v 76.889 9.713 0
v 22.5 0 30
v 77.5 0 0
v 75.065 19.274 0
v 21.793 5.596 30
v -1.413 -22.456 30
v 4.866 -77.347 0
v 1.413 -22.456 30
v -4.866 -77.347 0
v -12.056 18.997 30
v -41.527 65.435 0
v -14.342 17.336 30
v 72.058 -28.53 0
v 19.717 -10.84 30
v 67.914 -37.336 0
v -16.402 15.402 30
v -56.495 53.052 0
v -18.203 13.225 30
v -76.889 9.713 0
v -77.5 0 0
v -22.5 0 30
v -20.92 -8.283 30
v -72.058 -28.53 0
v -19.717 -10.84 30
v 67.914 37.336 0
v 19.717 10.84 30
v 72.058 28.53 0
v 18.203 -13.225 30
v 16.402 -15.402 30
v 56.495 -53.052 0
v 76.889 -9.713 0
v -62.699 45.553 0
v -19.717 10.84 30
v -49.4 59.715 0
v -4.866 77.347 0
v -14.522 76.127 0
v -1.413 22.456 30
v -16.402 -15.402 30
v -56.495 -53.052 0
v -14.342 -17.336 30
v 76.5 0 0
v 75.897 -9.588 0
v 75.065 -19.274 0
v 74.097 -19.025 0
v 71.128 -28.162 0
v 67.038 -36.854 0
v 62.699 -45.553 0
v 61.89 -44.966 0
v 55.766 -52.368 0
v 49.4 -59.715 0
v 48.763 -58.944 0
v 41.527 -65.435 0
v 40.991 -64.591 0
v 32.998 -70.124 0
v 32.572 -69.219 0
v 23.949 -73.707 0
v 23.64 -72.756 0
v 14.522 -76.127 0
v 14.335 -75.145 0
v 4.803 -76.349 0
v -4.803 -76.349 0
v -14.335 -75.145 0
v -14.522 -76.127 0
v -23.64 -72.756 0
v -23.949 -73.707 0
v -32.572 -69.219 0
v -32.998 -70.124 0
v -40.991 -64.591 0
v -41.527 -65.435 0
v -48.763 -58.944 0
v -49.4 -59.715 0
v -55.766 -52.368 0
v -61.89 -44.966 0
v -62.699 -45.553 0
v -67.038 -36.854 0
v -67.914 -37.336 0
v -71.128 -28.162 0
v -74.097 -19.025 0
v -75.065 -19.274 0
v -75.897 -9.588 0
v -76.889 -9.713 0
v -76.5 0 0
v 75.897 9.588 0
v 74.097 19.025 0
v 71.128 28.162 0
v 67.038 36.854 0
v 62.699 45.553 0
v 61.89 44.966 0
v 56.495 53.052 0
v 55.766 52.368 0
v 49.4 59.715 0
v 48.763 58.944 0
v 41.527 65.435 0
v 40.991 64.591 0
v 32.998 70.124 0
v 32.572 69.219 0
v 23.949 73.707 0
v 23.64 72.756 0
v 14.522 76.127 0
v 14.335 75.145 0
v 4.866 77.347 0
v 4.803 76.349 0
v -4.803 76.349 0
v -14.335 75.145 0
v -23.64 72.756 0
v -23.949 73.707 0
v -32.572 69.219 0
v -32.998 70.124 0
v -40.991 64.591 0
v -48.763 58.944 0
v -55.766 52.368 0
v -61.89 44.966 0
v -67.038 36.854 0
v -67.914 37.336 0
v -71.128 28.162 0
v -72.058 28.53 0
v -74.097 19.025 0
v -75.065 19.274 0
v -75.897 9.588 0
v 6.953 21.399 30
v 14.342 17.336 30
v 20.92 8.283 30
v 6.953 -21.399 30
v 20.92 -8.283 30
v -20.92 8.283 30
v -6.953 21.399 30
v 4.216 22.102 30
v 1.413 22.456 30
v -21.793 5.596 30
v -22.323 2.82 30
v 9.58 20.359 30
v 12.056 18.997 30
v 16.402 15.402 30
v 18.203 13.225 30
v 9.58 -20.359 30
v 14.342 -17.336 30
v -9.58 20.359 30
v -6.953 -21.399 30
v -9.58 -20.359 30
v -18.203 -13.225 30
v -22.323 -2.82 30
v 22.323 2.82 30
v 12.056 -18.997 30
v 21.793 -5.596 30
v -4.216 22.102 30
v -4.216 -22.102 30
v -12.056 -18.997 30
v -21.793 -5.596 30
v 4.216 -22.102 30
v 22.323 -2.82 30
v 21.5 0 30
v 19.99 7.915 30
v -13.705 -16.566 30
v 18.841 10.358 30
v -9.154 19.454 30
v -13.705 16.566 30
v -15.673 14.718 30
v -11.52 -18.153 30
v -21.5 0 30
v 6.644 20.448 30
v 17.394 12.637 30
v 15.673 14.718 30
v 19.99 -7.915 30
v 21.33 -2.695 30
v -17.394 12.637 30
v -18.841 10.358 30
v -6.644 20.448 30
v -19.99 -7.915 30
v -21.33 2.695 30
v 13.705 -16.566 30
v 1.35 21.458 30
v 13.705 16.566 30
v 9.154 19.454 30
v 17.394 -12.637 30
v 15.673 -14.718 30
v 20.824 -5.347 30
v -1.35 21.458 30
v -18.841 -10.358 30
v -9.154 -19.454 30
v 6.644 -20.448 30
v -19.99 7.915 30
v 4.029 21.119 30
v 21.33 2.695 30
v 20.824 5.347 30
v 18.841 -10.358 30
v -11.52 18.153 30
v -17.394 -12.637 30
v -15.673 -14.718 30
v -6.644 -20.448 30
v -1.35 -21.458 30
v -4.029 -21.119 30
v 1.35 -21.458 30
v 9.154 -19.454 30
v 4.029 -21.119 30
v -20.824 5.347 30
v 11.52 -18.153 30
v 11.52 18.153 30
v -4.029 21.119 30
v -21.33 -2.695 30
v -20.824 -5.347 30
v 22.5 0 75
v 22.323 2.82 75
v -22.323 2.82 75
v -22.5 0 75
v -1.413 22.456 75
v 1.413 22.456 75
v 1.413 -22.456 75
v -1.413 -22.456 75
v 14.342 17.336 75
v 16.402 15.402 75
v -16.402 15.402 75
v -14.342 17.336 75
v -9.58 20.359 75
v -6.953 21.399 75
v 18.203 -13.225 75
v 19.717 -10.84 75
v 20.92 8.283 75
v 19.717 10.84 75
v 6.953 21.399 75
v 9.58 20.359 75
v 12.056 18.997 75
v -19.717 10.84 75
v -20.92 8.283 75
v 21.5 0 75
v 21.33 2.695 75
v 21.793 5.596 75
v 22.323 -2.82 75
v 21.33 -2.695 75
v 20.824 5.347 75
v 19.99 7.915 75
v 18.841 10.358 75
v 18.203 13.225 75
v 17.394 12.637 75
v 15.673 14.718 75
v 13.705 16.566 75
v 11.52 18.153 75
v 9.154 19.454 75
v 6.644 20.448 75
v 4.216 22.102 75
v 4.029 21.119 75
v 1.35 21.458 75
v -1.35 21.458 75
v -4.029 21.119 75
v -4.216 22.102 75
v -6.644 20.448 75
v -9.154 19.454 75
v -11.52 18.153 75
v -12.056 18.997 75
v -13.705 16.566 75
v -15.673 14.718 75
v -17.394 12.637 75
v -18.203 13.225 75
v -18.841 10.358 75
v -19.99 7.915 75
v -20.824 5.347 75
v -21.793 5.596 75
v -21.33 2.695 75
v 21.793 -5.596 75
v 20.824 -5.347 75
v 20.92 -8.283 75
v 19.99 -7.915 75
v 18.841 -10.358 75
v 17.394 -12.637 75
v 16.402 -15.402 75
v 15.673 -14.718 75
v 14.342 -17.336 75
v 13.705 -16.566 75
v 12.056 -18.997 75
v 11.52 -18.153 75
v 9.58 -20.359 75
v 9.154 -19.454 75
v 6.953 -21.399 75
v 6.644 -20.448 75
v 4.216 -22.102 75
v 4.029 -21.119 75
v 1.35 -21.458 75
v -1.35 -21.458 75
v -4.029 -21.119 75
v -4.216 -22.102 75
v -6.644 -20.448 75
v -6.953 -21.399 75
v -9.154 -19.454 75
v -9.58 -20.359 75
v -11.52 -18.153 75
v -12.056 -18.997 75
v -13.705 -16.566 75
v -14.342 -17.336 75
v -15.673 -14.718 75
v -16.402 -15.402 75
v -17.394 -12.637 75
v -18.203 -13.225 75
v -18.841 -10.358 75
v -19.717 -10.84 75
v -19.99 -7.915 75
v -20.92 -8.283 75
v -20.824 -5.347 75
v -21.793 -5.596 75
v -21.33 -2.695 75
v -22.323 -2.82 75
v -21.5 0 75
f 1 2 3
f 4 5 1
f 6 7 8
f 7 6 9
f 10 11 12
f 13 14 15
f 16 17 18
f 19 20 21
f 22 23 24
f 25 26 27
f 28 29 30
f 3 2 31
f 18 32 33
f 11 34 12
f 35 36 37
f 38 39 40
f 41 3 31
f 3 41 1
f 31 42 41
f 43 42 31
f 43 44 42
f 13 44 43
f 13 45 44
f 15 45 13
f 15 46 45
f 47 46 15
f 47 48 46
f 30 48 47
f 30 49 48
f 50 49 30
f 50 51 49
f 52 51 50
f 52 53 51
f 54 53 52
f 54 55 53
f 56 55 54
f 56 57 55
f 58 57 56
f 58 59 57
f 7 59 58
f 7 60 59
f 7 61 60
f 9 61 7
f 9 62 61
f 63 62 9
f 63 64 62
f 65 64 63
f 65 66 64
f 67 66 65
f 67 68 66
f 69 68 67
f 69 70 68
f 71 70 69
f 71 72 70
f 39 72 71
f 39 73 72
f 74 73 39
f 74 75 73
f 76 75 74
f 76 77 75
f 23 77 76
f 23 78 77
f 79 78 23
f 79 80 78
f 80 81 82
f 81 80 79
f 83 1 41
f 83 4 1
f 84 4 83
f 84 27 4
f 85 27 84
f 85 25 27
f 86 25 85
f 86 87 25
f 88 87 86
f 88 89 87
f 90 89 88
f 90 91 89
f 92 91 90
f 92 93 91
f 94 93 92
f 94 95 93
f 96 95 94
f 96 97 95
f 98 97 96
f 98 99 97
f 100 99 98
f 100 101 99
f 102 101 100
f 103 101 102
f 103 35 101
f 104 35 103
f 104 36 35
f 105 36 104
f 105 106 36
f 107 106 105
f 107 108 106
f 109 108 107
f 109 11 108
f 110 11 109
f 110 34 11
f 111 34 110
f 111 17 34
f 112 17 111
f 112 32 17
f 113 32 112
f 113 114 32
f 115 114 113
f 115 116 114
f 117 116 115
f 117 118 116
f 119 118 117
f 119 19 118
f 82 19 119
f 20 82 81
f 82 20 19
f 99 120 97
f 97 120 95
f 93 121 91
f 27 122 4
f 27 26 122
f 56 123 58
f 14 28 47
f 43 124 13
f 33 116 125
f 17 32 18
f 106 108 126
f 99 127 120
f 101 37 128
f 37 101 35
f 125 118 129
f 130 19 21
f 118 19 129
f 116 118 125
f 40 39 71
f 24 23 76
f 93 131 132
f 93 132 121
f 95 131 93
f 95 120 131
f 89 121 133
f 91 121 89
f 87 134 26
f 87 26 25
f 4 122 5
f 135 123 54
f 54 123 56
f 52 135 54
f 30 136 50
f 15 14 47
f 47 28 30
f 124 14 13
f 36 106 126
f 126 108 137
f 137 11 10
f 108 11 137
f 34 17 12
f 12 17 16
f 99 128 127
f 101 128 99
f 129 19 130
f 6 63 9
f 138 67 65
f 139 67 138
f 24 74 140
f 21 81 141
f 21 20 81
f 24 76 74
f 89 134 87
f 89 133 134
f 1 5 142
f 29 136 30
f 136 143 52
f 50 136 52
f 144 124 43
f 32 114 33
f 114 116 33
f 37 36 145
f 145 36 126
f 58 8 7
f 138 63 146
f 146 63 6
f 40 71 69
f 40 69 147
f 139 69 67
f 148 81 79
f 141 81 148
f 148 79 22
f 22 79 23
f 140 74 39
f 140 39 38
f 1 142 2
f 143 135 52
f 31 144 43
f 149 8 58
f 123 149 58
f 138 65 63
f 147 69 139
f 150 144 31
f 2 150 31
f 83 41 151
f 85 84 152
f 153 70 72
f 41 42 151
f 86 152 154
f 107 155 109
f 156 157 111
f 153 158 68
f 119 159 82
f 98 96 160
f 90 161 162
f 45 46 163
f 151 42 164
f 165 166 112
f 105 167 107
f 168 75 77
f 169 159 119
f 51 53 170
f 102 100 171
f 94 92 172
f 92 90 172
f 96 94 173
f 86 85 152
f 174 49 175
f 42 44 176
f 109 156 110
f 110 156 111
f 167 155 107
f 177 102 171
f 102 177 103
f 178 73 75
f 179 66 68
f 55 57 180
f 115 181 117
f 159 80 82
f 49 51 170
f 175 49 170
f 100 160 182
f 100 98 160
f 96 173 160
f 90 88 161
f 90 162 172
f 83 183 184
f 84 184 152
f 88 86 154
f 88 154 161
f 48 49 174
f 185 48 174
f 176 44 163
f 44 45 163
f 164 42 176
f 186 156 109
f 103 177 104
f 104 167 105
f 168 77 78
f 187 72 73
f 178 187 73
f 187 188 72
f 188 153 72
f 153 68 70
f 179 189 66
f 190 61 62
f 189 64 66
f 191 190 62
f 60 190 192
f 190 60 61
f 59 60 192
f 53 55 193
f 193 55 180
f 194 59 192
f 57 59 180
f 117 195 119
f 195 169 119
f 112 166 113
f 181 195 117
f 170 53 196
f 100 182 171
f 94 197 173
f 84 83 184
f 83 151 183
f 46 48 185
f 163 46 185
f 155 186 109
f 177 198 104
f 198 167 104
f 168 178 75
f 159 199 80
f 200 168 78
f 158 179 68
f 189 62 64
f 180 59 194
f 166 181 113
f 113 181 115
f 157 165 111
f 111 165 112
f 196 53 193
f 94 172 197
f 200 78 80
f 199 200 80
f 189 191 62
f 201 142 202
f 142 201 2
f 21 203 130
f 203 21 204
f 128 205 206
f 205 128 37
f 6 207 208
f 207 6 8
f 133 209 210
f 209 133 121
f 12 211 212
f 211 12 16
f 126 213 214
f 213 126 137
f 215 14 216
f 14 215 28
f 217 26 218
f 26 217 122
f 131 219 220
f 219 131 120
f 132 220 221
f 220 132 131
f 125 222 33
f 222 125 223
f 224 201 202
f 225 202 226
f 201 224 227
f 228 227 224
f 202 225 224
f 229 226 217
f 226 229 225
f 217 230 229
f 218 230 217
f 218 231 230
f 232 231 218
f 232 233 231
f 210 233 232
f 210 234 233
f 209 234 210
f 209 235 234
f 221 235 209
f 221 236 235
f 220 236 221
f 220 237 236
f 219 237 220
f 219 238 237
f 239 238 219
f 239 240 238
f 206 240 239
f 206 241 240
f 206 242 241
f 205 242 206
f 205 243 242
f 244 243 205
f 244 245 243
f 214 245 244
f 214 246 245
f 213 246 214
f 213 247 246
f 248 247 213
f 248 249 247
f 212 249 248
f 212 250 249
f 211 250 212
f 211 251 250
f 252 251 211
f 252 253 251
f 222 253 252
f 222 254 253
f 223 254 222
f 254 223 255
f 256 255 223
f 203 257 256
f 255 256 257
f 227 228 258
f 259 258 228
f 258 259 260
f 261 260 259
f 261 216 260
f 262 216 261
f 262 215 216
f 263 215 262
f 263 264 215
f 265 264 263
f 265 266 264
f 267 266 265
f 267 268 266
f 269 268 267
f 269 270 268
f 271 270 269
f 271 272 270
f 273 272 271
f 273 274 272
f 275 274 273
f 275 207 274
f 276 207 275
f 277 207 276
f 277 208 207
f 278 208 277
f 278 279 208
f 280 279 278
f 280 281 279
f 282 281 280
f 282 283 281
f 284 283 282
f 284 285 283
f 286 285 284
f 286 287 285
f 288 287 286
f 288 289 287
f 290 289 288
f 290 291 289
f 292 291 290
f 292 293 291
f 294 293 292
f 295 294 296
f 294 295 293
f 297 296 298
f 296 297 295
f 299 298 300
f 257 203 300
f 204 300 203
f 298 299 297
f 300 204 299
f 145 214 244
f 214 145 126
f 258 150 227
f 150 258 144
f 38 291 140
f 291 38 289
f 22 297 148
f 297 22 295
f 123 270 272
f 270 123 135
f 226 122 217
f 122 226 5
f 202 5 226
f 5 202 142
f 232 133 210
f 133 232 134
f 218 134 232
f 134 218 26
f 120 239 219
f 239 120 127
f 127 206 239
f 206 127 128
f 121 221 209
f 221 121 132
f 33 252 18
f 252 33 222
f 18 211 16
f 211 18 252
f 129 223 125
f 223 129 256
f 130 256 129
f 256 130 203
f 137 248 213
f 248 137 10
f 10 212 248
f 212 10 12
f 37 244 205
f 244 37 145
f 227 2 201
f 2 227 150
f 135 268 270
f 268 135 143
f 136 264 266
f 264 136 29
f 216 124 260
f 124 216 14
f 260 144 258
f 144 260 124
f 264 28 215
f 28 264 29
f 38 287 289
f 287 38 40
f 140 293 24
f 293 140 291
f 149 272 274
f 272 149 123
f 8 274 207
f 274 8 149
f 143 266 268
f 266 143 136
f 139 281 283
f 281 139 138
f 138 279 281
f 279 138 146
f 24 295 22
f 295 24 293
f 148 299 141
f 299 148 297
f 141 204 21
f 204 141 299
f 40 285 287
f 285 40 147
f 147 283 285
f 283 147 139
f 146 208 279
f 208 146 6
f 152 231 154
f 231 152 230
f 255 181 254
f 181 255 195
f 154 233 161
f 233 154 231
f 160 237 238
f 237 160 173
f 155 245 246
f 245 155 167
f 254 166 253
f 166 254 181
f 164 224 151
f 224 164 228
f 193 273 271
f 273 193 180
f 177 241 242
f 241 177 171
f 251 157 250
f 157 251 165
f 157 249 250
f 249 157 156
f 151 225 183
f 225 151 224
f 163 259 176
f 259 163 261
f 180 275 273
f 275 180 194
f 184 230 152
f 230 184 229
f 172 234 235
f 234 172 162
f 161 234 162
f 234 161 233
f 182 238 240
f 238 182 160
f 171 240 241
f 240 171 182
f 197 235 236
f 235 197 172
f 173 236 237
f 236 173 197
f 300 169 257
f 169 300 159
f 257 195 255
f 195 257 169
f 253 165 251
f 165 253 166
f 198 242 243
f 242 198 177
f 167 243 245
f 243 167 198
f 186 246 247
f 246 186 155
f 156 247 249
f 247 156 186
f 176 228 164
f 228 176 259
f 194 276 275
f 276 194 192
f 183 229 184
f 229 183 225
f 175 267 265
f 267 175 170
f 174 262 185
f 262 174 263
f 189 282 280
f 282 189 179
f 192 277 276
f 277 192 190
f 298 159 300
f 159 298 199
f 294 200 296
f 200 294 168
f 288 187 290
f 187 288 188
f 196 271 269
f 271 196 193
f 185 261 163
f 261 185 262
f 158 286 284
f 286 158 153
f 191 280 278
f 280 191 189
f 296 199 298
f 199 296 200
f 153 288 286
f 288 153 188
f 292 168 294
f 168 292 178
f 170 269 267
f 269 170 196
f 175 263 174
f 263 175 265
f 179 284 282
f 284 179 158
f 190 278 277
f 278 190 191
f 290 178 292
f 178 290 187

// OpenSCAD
$fn = 50;


difference() {
	union() {
		translate(v = [0, 0, 0]) {
			rotate(a = [0, 0, 0]) {
				difference() {
					union() {
						cylinder(h = 30, r1 = 77.5000000000, r2 = 22.5000000000);
					}
					union() {
						cylinder(h = 30, r1 = 76.5000000000, r2 = 21.5000000000);
					}
				}
			}
		}
		translate(v = [0, 0, 30]) {
			rotate(a = [0, 0, 0]) {
				difference() {
					union() {
						cylinder(h = 45, r = 22.5000000000);
					}
					union() {
						cylinder(h = 45, r = 21.5000000000);
					}
				}
			}
		}
	}
	union();
}
